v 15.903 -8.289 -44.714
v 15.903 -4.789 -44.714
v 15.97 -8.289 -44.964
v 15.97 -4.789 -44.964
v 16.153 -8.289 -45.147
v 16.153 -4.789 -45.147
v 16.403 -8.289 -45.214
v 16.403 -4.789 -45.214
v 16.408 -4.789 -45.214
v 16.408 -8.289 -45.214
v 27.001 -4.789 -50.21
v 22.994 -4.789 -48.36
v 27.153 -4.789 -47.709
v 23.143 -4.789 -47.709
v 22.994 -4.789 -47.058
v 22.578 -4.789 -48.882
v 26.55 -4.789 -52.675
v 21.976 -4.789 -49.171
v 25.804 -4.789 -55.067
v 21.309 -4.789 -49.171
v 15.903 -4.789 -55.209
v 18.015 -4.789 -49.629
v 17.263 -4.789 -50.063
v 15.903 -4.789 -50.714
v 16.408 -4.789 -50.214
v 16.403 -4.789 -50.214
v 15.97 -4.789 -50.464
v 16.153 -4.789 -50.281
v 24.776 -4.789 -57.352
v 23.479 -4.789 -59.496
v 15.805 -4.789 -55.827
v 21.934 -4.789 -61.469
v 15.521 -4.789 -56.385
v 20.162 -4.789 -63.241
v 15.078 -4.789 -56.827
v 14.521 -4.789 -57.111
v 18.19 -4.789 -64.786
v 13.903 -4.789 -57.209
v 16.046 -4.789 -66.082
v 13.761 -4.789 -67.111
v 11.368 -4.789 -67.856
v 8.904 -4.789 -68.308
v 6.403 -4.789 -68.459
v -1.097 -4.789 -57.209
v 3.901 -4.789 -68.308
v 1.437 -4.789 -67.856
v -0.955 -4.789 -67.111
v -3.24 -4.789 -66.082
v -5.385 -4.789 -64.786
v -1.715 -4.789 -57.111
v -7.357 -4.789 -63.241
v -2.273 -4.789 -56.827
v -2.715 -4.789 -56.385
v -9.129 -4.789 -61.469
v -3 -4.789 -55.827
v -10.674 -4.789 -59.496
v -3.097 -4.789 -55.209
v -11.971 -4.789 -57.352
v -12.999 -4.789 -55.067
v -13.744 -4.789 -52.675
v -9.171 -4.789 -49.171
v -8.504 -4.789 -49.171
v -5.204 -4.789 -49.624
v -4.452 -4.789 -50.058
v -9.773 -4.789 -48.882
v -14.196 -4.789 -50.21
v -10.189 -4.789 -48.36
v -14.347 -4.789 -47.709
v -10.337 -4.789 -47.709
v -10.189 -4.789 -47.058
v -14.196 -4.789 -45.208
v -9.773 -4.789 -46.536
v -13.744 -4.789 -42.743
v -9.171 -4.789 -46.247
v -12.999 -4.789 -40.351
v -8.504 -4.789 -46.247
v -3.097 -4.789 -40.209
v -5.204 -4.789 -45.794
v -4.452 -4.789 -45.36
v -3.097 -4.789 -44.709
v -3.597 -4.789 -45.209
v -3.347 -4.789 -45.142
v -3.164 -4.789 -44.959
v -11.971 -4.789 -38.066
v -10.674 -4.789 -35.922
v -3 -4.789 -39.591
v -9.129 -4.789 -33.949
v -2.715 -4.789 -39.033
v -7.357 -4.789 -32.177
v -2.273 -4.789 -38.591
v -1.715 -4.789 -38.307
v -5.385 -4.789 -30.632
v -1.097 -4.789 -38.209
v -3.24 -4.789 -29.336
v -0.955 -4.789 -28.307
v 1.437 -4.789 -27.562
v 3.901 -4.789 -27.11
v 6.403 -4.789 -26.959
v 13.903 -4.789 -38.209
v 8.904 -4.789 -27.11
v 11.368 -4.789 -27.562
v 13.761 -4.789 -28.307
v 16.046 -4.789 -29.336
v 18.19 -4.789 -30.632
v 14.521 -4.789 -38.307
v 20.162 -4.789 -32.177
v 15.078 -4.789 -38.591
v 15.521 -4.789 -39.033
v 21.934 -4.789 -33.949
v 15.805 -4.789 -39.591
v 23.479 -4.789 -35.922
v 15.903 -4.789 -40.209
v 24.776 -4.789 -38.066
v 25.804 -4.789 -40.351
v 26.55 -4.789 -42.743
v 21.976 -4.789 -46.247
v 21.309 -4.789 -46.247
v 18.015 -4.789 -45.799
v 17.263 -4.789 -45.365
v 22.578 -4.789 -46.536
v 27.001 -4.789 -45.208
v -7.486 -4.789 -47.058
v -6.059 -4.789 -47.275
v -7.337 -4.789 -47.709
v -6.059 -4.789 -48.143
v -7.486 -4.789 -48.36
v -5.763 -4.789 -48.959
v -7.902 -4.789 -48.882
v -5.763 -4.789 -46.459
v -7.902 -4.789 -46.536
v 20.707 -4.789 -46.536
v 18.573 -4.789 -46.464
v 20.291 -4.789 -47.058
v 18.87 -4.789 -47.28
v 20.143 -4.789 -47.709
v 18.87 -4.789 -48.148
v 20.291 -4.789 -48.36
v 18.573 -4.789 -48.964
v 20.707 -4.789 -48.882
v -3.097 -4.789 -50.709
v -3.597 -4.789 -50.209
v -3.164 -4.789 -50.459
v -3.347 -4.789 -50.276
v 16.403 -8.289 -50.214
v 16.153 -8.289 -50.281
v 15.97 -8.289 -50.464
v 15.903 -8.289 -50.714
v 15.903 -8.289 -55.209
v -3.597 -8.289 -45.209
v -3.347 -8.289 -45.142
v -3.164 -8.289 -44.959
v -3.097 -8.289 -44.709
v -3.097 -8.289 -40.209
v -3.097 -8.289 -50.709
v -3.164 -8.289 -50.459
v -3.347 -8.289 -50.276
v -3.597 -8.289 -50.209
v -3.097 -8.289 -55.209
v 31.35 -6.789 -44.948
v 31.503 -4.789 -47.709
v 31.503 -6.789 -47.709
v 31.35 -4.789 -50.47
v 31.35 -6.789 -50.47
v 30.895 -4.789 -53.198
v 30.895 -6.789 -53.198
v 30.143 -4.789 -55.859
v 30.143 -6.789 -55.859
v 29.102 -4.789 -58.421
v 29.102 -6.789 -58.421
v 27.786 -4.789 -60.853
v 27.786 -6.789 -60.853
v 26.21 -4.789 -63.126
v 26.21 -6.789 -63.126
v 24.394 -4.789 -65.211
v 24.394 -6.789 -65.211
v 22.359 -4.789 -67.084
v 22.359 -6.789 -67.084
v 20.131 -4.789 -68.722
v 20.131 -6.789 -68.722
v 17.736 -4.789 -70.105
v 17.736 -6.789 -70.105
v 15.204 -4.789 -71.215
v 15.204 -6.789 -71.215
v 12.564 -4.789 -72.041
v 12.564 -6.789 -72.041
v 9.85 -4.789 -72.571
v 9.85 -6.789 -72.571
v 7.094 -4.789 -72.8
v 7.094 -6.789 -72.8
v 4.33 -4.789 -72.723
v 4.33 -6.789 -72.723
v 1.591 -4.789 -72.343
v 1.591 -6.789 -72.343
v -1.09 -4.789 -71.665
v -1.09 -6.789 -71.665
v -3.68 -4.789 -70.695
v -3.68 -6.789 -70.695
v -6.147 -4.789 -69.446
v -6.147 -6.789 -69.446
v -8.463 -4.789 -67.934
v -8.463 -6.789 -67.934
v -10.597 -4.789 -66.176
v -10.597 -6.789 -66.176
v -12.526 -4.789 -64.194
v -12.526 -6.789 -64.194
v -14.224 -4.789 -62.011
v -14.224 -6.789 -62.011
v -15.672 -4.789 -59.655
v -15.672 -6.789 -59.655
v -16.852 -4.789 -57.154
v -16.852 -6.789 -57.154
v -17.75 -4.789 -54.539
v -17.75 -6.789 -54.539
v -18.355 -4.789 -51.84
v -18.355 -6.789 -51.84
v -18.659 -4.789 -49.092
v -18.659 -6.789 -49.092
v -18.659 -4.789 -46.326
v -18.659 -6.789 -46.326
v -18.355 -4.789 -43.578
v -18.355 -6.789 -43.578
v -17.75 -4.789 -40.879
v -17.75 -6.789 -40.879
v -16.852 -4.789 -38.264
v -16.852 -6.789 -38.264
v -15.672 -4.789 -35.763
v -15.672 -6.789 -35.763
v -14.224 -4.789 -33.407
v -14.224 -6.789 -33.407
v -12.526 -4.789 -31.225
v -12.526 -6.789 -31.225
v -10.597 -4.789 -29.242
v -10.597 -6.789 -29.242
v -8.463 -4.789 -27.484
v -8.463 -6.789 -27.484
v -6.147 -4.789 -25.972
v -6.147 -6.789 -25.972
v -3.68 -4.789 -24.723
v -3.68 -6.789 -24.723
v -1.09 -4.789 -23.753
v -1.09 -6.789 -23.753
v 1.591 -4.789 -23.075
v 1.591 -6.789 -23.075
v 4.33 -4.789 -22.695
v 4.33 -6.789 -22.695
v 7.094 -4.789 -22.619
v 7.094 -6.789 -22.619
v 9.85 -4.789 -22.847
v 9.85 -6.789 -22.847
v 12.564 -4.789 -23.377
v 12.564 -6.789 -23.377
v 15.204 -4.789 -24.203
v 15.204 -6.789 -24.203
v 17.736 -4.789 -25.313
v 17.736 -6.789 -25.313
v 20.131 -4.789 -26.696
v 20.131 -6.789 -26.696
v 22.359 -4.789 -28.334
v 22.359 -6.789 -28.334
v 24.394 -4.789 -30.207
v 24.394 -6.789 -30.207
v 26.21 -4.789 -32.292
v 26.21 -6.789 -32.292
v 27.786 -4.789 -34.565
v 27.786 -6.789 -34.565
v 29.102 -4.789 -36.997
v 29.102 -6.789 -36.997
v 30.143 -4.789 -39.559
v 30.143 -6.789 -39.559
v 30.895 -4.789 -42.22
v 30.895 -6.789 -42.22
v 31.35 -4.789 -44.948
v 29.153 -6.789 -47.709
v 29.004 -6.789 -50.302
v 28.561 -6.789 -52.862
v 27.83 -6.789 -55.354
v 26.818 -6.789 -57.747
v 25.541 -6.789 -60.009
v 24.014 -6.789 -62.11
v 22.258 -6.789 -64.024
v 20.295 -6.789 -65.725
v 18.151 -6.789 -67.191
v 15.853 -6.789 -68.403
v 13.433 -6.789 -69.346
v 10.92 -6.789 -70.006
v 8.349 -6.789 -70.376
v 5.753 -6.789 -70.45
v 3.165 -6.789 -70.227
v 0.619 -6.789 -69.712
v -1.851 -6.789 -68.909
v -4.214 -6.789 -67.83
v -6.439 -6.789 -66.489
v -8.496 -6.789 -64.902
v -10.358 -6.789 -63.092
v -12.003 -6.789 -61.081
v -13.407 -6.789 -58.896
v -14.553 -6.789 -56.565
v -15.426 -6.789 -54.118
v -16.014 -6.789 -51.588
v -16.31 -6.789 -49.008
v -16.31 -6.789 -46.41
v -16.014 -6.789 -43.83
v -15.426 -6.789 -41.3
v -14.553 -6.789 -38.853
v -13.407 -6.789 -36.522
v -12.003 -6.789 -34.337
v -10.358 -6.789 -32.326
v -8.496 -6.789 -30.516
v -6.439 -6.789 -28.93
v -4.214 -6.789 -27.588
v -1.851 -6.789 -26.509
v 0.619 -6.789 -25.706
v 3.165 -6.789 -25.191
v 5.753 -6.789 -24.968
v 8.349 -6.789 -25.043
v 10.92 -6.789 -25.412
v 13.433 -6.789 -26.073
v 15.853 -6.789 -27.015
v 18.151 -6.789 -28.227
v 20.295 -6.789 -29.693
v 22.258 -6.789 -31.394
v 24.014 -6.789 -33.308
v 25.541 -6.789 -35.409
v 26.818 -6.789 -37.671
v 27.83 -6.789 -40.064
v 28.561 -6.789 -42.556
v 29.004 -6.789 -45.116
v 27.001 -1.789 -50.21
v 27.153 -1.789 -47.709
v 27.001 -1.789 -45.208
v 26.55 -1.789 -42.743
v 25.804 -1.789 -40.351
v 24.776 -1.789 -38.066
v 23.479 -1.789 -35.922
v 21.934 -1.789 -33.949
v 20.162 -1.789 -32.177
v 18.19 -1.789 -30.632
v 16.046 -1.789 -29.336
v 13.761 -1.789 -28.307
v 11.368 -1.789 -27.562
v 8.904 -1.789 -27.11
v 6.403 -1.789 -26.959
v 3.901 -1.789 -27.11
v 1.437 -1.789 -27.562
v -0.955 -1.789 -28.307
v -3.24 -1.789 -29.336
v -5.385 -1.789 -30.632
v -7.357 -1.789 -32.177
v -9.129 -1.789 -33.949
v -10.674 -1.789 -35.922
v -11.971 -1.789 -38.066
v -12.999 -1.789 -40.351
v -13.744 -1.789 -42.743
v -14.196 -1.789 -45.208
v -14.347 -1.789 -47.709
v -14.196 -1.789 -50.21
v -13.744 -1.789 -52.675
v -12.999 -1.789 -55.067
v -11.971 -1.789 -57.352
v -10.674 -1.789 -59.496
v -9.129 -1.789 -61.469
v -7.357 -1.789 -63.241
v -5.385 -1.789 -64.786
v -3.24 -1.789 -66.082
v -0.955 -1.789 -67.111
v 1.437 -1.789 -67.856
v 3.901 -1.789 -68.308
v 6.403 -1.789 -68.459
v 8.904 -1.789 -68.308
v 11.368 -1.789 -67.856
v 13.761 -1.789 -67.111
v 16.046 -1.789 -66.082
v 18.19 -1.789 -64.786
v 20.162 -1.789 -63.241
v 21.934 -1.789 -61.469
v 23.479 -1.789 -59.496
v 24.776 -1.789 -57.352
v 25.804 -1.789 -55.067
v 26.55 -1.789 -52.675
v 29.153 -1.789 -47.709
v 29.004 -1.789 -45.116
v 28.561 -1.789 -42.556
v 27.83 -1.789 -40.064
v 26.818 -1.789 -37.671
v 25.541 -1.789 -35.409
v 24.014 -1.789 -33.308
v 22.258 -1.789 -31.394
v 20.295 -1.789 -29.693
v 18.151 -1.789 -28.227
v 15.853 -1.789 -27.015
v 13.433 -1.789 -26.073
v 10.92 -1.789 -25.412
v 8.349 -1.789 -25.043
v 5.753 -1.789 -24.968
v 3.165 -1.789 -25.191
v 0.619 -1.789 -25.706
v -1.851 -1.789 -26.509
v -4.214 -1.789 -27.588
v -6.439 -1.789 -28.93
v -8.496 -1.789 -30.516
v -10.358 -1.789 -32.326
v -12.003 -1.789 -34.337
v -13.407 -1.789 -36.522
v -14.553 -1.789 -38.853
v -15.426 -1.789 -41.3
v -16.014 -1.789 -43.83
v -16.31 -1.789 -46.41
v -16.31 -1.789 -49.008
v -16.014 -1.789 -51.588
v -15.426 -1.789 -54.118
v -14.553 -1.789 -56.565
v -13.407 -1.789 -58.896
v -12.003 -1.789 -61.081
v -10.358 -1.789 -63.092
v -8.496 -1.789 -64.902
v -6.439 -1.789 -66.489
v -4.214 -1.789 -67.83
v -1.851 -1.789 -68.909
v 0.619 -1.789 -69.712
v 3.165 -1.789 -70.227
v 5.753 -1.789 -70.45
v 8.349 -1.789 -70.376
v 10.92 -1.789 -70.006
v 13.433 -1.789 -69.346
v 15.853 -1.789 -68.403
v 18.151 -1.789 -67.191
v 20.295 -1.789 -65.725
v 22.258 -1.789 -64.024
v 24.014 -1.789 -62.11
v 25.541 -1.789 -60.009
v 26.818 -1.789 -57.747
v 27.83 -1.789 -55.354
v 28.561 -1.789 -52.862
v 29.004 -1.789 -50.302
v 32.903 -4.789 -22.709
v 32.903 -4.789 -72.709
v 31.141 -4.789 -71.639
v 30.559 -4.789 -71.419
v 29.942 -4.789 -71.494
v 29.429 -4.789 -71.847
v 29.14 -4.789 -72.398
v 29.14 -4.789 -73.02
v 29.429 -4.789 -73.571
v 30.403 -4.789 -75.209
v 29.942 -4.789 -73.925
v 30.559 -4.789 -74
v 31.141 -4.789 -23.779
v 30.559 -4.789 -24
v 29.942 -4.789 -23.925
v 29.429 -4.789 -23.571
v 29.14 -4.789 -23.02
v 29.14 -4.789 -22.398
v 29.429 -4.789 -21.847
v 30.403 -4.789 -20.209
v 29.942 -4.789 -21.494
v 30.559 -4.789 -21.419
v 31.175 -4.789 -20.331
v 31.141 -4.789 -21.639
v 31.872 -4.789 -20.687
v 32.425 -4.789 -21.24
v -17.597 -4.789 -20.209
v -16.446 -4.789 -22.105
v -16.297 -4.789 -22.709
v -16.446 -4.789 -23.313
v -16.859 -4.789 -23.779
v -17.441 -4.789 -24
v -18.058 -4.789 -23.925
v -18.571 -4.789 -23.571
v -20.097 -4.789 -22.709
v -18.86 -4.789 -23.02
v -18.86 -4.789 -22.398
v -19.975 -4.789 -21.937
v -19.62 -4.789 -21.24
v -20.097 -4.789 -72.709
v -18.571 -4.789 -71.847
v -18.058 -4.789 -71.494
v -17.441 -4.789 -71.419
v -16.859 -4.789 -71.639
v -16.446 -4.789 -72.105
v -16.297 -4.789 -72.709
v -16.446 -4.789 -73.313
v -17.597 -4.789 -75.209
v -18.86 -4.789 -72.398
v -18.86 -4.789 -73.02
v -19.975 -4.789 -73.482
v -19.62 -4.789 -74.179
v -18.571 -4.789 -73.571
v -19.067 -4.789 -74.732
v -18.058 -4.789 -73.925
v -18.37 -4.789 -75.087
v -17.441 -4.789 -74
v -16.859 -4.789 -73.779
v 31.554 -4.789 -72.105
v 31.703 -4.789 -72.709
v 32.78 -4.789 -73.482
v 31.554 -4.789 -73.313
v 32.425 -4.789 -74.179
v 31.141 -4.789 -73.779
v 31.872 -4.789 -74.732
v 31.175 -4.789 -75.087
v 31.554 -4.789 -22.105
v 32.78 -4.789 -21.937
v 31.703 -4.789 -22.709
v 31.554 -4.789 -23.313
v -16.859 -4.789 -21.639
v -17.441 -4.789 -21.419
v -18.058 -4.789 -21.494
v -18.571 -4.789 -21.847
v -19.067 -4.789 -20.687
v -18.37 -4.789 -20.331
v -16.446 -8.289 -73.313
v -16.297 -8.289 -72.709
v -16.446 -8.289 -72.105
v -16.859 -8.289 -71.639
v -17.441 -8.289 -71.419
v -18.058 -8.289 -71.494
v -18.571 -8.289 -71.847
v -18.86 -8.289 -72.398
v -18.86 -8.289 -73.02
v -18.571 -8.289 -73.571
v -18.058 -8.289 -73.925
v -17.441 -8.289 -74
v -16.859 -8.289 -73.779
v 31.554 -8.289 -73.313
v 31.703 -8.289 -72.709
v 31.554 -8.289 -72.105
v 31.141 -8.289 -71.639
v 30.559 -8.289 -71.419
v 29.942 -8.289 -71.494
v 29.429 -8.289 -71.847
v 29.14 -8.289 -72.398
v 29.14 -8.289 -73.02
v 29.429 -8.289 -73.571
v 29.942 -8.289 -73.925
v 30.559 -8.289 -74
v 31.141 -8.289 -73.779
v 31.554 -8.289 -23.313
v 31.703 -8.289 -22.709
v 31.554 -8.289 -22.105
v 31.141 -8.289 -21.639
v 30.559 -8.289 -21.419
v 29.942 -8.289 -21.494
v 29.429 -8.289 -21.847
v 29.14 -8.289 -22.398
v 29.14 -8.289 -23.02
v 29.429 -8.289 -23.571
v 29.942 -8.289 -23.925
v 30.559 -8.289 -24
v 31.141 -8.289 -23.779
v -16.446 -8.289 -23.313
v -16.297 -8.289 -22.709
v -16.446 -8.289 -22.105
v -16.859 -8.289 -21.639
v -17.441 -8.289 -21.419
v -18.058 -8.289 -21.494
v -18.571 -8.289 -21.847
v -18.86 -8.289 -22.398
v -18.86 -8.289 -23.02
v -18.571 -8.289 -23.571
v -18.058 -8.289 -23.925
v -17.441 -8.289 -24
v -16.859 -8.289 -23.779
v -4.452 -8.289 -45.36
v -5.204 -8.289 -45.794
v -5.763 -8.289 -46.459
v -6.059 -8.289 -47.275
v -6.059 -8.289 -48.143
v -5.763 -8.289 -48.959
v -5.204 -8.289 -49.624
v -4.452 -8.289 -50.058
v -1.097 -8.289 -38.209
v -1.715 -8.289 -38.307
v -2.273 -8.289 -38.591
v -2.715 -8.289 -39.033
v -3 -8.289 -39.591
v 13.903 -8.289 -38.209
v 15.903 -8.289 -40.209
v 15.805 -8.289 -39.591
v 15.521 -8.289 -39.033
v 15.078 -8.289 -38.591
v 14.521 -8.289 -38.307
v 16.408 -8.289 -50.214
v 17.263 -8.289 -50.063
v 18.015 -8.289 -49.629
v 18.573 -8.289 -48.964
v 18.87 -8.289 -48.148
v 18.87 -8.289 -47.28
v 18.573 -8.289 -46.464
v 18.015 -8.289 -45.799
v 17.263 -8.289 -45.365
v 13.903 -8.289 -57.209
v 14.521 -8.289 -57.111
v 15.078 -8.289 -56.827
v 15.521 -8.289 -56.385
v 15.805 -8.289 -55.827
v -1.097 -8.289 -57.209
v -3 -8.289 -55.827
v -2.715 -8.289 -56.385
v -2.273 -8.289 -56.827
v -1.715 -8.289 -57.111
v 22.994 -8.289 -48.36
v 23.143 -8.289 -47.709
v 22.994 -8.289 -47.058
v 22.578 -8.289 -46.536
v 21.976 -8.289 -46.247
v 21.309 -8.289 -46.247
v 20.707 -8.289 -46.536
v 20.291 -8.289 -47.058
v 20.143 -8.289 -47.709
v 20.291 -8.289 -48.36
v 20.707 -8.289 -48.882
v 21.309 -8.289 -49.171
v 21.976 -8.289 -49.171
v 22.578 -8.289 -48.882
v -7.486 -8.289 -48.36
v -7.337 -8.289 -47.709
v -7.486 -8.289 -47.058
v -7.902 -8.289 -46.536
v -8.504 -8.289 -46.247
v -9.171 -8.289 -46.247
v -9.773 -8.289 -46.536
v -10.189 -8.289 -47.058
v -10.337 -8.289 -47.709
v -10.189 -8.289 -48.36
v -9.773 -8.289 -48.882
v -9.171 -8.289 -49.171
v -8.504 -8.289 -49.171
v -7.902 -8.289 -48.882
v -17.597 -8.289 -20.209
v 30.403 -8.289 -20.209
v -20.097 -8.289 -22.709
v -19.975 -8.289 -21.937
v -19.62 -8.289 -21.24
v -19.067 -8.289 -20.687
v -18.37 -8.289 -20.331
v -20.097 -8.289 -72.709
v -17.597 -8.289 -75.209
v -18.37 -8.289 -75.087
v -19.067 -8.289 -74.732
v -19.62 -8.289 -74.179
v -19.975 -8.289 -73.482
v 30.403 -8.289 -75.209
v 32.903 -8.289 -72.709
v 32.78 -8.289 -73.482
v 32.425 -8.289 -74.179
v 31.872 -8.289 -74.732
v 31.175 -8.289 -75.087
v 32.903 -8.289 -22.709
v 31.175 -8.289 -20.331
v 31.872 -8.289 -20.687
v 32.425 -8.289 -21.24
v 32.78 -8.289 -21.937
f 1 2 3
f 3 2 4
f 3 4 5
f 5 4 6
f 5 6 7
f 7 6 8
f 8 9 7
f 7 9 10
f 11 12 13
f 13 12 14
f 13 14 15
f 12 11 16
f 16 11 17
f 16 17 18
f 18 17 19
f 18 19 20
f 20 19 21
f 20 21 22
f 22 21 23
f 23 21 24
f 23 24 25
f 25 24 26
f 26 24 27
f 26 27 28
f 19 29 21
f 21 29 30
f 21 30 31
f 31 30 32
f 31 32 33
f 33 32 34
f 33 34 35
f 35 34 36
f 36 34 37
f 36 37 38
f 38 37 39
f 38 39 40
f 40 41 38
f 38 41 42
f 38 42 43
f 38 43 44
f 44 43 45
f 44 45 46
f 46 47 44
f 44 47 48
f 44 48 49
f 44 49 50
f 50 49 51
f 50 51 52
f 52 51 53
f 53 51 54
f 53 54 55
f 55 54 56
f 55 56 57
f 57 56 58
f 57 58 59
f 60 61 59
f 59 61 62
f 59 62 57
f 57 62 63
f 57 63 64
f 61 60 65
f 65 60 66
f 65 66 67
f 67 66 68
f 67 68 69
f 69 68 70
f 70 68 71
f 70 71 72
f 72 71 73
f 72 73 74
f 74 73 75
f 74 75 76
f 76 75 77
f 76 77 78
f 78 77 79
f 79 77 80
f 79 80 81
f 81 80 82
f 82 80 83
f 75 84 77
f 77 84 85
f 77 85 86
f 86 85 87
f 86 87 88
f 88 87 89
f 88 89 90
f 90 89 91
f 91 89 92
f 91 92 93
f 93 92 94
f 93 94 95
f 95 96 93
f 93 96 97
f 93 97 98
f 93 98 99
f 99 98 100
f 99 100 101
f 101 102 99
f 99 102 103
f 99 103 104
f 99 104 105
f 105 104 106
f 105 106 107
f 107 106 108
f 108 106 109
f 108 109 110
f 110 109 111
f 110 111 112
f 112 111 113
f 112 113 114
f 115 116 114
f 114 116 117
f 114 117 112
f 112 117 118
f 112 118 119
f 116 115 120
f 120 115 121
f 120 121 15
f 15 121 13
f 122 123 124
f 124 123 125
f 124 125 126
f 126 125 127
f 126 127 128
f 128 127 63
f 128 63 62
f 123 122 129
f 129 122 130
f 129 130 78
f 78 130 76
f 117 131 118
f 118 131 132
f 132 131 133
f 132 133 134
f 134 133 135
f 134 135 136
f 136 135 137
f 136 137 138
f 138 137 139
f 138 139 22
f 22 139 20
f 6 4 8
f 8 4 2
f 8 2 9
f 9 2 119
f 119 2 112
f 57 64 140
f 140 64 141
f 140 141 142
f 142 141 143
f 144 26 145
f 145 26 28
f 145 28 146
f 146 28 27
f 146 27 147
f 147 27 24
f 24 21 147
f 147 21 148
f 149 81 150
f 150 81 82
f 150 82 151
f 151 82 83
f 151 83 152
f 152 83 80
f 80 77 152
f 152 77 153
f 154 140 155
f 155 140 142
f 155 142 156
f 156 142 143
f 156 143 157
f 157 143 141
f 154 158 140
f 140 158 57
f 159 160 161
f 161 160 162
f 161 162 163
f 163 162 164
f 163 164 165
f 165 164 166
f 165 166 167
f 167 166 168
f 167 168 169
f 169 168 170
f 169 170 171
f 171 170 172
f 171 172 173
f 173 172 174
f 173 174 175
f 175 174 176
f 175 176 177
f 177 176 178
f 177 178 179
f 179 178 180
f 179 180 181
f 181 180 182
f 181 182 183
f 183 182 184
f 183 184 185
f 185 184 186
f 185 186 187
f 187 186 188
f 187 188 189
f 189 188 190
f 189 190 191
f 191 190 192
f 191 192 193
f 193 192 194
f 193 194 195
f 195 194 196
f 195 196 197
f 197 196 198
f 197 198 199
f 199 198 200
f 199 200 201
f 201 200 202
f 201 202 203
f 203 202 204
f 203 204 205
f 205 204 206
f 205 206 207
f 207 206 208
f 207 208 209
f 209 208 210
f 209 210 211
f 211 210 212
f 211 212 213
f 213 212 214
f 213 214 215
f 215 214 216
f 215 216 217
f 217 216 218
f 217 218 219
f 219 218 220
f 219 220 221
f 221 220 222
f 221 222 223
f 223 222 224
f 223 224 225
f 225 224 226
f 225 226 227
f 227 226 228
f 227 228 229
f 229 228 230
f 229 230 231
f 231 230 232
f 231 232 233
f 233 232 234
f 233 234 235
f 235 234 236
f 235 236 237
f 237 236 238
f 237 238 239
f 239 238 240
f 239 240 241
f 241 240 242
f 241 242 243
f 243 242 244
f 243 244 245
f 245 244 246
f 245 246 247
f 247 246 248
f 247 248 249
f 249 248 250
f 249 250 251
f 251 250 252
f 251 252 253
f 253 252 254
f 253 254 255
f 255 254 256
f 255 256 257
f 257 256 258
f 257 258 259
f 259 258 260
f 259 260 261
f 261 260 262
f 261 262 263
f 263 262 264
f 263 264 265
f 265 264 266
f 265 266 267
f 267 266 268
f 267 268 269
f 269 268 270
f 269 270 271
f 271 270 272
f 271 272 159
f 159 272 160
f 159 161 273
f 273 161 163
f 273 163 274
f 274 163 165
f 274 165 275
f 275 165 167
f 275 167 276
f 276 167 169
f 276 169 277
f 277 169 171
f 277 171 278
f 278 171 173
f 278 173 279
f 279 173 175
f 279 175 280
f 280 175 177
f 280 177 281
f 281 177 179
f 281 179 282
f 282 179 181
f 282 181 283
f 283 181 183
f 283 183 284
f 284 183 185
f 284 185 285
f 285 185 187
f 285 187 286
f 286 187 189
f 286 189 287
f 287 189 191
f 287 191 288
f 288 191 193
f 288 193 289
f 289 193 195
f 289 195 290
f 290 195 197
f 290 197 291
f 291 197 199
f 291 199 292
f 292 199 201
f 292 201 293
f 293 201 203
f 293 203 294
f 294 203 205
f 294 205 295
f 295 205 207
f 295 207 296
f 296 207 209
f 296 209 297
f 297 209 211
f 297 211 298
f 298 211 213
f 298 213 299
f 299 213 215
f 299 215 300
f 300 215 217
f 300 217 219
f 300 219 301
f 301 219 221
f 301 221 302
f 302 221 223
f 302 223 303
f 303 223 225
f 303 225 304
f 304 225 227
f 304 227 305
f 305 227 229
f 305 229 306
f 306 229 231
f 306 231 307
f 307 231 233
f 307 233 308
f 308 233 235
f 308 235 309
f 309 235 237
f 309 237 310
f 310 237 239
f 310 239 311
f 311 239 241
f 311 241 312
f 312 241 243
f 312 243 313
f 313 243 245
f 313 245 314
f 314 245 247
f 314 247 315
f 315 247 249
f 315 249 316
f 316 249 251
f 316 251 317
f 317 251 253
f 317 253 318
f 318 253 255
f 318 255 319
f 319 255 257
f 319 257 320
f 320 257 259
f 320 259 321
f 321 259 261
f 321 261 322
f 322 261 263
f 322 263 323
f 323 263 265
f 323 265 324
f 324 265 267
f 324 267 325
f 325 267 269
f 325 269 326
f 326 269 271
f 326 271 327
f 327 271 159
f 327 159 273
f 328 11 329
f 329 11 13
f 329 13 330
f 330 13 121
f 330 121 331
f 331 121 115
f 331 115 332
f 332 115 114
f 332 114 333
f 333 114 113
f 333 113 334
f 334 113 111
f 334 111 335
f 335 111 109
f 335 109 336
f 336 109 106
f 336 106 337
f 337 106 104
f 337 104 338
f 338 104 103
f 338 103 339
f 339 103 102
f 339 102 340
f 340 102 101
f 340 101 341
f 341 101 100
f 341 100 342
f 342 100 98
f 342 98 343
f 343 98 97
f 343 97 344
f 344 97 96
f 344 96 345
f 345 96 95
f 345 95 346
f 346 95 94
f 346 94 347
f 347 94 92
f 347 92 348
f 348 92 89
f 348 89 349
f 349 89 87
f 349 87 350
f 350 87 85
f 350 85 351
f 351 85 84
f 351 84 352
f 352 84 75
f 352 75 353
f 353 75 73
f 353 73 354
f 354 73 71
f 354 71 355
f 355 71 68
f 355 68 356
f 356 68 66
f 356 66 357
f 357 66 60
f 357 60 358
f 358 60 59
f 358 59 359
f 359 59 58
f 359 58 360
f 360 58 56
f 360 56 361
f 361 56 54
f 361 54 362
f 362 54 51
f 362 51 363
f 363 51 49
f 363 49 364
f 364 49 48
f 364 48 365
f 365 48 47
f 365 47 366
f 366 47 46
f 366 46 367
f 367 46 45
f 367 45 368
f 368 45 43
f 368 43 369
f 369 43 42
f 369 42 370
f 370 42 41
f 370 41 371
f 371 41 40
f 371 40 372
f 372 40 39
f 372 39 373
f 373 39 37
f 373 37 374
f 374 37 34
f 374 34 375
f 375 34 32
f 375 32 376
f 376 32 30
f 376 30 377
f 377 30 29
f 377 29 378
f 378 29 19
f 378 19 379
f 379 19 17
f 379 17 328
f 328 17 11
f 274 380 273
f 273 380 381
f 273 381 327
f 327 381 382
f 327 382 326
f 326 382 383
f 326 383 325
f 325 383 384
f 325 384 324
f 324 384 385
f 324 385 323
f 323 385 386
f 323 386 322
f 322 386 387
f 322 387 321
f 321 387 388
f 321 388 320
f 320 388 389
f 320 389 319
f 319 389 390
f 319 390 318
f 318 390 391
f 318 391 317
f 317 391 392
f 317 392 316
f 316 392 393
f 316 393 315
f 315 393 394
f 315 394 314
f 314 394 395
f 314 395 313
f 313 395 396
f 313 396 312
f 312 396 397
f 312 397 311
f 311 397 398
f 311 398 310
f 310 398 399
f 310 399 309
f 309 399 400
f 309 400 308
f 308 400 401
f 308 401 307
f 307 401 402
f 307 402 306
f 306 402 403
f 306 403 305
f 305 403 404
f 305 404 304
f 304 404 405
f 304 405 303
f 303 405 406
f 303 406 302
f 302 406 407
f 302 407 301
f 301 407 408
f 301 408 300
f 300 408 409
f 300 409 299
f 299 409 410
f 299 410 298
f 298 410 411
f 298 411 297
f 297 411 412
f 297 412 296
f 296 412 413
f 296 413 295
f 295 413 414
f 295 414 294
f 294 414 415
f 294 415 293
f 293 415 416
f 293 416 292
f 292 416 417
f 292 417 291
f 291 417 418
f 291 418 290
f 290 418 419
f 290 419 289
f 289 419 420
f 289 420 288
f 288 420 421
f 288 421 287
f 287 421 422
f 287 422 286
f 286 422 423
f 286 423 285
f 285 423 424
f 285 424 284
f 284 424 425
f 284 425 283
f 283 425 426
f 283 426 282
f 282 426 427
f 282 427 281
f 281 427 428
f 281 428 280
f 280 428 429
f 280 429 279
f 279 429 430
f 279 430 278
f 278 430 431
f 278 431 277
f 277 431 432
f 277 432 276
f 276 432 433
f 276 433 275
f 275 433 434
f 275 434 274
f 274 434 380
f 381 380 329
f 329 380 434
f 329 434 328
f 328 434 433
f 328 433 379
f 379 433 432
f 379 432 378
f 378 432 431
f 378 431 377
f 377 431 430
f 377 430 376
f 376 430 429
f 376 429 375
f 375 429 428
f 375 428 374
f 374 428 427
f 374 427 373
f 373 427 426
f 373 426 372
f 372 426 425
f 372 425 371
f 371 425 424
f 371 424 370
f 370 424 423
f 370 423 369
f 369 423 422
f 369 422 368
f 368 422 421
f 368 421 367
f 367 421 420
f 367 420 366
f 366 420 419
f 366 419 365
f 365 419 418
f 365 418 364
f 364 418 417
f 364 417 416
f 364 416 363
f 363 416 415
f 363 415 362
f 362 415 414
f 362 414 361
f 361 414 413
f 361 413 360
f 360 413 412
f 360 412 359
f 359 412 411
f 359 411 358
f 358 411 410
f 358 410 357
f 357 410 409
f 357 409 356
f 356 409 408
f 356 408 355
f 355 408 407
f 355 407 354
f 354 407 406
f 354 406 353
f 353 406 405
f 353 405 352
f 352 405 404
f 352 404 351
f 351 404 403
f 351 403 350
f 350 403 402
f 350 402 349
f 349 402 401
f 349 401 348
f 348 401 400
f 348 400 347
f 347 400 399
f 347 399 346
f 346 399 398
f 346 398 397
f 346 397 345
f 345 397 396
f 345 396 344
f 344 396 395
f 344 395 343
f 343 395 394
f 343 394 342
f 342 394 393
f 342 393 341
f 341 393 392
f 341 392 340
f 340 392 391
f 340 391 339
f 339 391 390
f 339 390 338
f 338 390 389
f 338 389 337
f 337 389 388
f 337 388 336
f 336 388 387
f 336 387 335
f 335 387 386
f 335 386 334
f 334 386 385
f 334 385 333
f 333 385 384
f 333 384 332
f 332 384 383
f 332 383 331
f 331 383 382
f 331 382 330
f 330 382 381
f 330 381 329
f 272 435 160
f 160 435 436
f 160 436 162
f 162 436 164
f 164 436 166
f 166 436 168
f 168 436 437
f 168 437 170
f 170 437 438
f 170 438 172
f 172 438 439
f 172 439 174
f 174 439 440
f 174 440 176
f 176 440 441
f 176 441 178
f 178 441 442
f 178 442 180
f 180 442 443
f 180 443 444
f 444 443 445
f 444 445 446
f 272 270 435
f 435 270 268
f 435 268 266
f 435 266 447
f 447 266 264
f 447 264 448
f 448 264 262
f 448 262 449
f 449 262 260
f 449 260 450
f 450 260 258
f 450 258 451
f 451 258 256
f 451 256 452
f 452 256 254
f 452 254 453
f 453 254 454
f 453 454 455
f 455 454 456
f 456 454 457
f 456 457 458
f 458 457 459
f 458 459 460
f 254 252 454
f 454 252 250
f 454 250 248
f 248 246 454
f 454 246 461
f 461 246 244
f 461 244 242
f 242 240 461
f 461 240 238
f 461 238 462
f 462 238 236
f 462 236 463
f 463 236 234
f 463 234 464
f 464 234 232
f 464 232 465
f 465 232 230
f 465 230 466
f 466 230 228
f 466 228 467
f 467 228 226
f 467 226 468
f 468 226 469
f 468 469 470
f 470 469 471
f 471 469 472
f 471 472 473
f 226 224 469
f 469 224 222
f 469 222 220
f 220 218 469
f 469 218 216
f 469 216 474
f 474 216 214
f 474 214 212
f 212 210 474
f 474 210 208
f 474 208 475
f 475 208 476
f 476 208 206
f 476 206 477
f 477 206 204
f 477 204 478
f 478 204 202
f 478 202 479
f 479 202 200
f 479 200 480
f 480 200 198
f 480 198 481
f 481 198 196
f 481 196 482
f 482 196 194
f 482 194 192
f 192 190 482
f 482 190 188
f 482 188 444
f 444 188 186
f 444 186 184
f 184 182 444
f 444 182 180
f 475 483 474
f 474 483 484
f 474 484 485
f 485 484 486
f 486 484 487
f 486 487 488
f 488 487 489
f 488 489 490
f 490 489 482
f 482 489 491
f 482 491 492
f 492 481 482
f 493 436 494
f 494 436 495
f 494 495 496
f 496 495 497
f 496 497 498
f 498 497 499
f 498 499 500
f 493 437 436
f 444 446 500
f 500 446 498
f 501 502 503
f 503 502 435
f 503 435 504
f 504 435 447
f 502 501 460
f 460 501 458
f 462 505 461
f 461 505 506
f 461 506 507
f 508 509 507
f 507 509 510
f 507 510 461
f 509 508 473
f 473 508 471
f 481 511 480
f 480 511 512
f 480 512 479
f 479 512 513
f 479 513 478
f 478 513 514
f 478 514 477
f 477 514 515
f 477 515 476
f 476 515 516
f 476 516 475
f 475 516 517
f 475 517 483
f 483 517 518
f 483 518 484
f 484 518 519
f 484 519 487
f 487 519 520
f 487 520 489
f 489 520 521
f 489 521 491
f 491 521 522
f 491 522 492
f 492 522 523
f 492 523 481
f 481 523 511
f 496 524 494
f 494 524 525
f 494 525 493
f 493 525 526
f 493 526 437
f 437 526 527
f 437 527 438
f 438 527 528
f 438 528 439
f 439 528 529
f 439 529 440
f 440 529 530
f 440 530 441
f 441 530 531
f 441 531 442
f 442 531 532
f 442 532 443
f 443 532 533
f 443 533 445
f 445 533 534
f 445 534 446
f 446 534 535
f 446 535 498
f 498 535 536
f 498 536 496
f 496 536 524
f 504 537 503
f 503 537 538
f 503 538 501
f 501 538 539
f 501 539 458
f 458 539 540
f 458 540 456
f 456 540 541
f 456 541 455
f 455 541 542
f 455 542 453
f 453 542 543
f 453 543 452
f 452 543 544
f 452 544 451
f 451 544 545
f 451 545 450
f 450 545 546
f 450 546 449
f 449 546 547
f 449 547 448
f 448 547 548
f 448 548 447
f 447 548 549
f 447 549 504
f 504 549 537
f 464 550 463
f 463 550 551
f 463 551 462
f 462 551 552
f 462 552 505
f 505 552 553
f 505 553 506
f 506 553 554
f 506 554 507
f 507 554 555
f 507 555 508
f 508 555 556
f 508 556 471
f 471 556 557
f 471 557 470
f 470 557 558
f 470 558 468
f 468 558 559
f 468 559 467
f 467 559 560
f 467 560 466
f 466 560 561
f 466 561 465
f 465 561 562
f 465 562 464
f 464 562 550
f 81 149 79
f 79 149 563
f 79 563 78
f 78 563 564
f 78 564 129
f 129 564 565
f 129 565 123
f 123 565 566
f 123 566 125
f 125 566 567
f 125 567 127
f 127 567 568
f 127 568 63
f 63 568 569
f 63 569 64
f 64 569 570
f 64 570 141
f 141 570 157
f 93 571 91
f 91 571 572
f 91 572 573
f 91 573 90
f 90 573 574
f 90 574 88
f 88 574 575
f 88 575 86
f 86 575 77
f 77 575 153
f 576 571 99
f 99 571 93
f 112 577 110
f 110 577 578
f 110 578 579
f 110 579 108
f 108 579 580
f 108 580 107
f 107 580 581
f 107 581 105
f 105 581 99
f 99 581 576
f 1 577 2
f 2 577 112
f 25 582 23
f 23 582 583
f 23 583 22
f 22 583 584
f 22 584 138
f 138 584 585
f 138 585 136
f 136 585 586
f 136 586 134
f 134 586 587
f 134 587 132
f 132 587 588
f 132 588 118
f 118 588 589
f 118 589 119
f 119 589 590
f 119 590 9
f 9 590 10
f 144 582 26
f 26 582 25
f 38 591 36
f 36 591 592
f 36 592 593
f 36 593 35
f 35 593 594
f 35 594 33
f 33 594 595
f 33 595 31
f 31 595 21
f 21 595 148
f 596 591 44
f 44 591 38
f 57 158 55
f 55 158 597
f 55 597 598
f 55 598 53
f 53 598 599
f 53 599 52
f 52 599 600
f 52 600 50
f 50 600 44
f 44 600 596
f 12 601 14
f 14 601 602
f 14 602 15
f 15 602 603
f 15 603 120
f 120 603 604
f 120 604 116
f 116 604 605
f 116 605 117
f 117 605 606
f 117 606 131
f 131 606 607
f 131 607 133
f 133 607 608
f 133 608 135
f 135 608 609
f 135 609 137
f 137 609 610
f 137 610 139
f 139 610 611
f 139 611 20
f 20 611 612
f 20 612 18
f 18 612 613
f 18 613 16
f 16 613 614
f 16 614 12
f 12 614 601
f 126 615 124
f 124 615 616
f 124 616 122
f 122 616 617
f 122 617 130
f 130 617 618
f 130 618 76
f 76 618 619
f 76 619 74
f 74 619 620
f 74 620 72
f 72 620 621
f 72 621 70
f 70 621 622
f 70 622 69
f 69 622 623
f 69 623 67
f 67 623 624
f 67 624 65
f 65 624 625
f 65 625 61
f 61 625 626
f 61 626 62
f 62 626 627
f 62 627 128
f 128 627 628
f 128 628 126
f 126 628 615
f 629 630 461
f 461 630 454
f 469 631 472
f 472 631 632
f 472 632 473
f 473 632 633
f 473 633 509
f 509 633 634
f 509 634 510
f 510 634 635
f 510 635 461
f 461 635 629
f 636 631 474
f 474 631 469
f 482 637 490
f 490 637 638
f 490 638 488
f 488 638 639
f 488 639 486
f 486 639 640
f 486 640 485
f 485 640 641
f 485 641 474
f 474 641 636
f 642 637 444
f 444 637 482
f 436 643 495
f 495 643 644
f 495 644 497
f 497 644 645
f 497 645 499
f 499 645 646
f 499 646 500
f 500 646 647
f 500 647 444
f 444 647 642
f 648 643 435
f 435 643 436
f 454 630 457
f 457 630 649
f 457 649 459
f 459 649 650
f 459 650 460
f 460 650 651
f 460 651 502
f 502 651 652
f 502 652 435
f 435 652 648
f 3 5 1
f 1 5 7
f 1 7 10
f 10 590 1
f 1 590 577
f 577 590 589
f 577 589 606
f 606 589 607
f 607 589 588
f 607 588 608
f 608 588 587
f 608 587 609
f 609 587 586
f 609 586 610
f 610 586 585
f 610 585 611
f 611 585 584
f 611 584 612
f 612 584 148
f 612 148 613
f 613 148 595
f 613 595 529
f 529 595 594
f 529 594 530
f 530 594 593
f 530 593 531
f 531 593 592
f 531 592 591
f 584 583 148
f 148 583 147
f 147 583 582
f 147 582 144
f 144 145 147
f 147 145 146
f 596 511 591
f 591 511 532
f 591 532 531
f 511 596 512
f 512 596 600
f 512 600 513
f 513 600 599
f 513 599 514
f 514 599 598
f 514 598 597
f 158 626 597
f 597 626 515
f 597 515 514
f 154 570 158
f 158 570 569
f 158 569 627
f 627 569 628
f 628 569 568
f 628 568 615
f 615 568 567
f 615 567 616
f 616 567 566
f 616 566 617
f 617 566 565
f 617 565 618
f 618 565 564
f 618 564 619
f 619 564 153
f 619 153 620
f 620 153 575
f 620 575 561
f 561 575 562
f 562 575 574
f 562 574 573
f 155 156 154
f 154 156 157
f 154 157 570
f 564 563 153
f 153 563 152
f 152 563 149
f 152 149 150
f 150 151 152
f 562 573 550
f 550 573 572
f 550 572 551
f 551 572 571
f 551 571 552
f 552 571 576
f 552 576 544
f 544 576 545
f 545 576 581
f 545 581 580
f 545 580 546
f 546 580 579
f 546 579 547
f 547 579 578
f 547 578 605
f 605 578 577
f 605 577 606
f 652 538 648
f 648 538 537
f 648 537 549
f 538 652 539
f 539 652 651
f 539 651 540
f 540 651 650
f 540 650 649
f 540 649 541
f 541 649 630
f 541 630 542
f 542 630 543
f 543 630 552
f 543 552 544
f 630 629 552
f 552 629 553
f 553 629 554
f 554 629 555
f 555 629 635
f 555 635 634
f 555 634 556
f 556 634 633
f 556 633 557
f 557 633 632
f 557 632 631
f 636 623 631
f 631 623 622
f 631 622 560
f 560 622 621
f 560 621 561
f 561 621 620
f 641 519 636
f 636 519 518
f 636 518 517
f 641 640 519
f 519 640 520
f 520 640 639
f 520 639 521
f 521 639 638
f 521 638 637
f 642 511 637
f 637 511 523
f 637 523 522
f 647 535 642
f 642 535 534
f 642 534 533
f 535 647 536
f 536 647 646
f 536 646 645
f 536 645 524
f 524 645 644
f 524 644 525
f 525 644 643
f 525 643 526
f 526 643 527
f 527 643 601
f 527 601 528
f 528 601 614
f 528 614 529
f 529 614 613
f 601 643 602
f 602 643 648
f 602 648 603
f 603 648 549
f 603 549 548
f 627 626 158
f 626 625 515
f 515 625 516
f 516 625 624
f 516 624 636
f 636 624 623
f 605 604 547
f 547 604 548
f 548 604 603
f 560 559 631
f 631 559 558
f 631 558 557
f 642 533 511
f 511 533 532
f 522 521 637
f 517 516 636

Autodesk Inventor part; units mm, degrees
ref_plane "YZ Plane" through (0, 0, 0) normal (1, 0, 0) x (0, 1, 0)
ref_plane "XZ Plane" through (0, 0, 0) normal (0, 1, 0) x (-1, 0, 0)
ref_plane "作業平面1" through (-1.8524, -8.2893, -39.454) normal (0, 1, 0) x (1, 0, 0)
sketch "スケッチ1" plane through (-1.8524, -8.2893, -39.454) normal (0, 1, 0) x (1, 0, 0)
  line L0 (9.655, 16.755) -> (9.655, 15.8775) projected
  arc A0 (6.855, 15.8775) -> (9.655, 15.8775) centre (8.255, 8.255) ccw projected
  line L1 (6.855, 15.8775) -> (6.855, 16.755) projected
  line L2 (6.855, 16.755) -> (0.755, 16.755) projected
  arc A1 (0.755, 16.755) -> (-0.245, 15.755) centre (0.755, 15.755) ccw projected
  line L3 (-0.245, 15.755) -> (-0.245, 10.155) projected
  line L4 (-0.245, 10.155) -> (-1.745, 10.155) projected
  arc A2 (-1.745, 10.155) -> (-1.745, 6.355) centre (-1.745, 8.255) ccw projected
  line L5 (-1.745, 6.355) -> (-0.245, 6.355) projected
  line L6 (-0.245, 6.355) -> (-0.245, 0.755) projected
  arc A3 (-0.245, 0.755) -> (0.755, -0.245) centre (0.755, 0.755) ccw projected
  line L7 (0.755, -0.245) -> (15.755, -0.245) projected
  arc A4 (15.755, -0.245) -> (16.755, 0.755) centre (15.755, 0.755) ccw projected
  line L8 (16.755, 0.755) -> (16.755, 6.355) projected
  line L9 (16.755, 6.355) -> (18.255, 6.355) projected
  arc A5 (18.255, 6.355) -> (18.255, 10.155) centre (18.255, 8.255) ccw projected
  line L10 (18.255, 10.155) -> (16.755, 10.155) projected
  line L11 (16.755, 10.155) -> (16.755, 15.755) projected
  arc A6 (16.755, 15.755) -> (15.755, 16.755) centre (15.755, 15.755) ccw projected
  line L12 (15.755, 16.755) -> (9.655, 16.755) projected
  circle A7 centre (-1.745, 8.255) radius 0.9 projected
  circle A8 centre (18.255, 8.255) radius 0.9 projected
  line L13 (-15.745, -19.245) -> (32.255, -19.245)
  line L14 (34.755, -16.745) -> (34.755, 33.255)
  line L15 (32.255, 35.755) -> (-15.745, 35.755)
  line L16 (-18.245, 33.255) -> (-18.245, -16.745)
  line L17 (-18.245, -19.245) -> (34.755, 35.755) construction
  line L18 (34.755, -19.245) -> (-18.245, 35.755) construction
  arc A9 (-15.745, 35.755) -> (-18.245, 33.255) centre (-15.745, 33.255) ccw
  arc A10 (34.755, 33.255) -> (32.255, 35.755) centre (32.255, 33.255) ccw
  arc A11 (32.255, -19.245) -> (34.755, -16.745) centre (32.255, -16.745) ccw
  arc A12 (-18.245, -16.745) -> (-15.745, -19.245) centre (-15.745, -16.745) ccw
  circle A13 centre (-15.745, 33.255) radius 1.3
  circle A14 centre (32.255, 33.255) radius 1.3
  circle A15 centre (32.255, -16.745) radius 1.3
  circle A16 centre (-15.745, -16.745) radius 1.3
  line L19 (32.255, -16.745) -> (-15.745, -16.745) construction
  line L20 (-15.745, -16.745) -> (-15.745, 33.255) construction
  line L21 (-15.745, 33.255) -> (32.255, 33.255) construction
  line L22 (32.255, 33.255) -> (32.255, -16.745) construction
  line L23 (32.255, -16.745) -> (-15.745, 33.255) construction
  line L24 (-15.745, -16.745) -> (32.255, 33.255) construction
  line L25 (6.855, 16.755) -> (9.655, 16.755)
  circle A17 centre (-6.985, 8.255) radius 1.5 projected
  circle A18 centre (18.26, 8.26) radius 1.27 projected
  circle A19 centre (23.495, 8.255) radius 1.5 projected
  arc A20 (-1.745, 10.755) -> (-1.745, 5.755) centre (-1.745, 8.255) ccw
  arc A21 (18.26, 5.76) -> (18.26, 10.76) centre (18.26, 8.26) ccw
  arc A22 (17.755, 15.755) -> (15.755, 17.755) centre (15.755, 15.755) ccw
  arc A23 (15.755, -1.245) -> (17.755, 0.755) centre (15.755, 0.755) ccw
  arc A24 (-1.245, 0.755) -> (0.755, -1.245) centre (0.755, 0.755) ccw
  arc A25 (0.755, 17.755) -> (-1.245, 15.755) centre (0.755, 15.755) ccw
  line L26 (0.755, 17.755) -> (15.755, 17.755)
  line L27 (17.755, 15.755) -> (17.755, 10.76)
  line L28 (17.755, 10.76) -> (18.26, 10.76)
  line L29 (17.755, 0.755) -> (17.755, 5.76)
  line L30 (17.755, 5.76) -> (18.26, 5.76)
  line L31 (15.755, -1.245) -> (0.755, -1.245)
  line L32 (-1.245, 0.755) -> (-1.245, 5.755)
  line L33 (-1.245, 5.755) -> (-1.745, 5.755)
  line L34 (-1.745, 10.755) -> (-1.245, 10.755)
  line L35 (-1.245, 10.755) -> (-1.245, 15.755)
  point P0 (1.8524, -39.454)
  dimension "d2" = 2.5
  dimension "d3" = 2.6
  dimension "d4" = 50
  dimension "d5" = 48
  dimension "d15" = 2.5
  dimension "d16" = 2
extrude "押し出し1" add sketch "スケッチ1" along normal blind 3.5 contours A12 L16 A9 L15 A10 L14 A11 L13
sketch "スケッチ2" plane through (-1.8524, -4.7893, -39.454) normal (0, 1, 0) x (1, 0, 0)
  arc A0 (32.255, -19.245) -> (34.755, -16.745) centre (32.255, -16.745) ccw projected
  line L0 (34.755, -16.745) -> (34.755, 33.255) projected
  arc A1 (34.755, 33.255) -> (32.255, 35.755) centre (32.255, 33.255) ccw projected
  line L1 (32.255, 35.755) -> (-15.745, 35.755) projected
  arc A2 (-15.745, 35.755) -> (-18.245, 33.255) centre (-15.745, 33.255) ccw projected
  line L2 (-18.245, 33.255) -> (-18.245, -16.745) projected
  arc A3 (-18.245, -16.745) -> (-15.745, -19.245) centre (-15.745, -16.745) ccw projected
  line L3 (-15.745, -19.245) -> (32.255, -19.245) projected
  circle A4 centre (-15.745, -16.745) radius 1.3 projected
  circle A5 centre (32.255, -16.745) radius 1.3 projected
  circle A6 centre (32.255, 33.255) radius 1.3 projected
  circle A7 centre (-15.745, 33.255) radius 1.3 projected
  circle A8 centre (8.255, 8.255) radius 25.1
  circle A9 centre (8.255, 8.255) radius 22.75
  circle A10 centre (8.255, 8.255) radius 20.75
  point P0 (1.8524, -39.454)
  dimension "d8" = 50.2
  dimension "d9" = 45.5
  dimension "d10" = 2
extrude "押し出し2" add sketch "スケッチ2" along normal blind 3 contours A9
extrude "押し出し3" cut sketch "スケッチ2" against normal blind 2 contours A8
fillet "フィレット1" radius 0.5 4 edges at (-3.0974, -6.5393, -50.209) (-3.0974, -6.5393, -45.209) (15.9026, -6.5393, -50.214) (15.9026, -6.5393, -45.214)
properties part number "Camera_Mount"
